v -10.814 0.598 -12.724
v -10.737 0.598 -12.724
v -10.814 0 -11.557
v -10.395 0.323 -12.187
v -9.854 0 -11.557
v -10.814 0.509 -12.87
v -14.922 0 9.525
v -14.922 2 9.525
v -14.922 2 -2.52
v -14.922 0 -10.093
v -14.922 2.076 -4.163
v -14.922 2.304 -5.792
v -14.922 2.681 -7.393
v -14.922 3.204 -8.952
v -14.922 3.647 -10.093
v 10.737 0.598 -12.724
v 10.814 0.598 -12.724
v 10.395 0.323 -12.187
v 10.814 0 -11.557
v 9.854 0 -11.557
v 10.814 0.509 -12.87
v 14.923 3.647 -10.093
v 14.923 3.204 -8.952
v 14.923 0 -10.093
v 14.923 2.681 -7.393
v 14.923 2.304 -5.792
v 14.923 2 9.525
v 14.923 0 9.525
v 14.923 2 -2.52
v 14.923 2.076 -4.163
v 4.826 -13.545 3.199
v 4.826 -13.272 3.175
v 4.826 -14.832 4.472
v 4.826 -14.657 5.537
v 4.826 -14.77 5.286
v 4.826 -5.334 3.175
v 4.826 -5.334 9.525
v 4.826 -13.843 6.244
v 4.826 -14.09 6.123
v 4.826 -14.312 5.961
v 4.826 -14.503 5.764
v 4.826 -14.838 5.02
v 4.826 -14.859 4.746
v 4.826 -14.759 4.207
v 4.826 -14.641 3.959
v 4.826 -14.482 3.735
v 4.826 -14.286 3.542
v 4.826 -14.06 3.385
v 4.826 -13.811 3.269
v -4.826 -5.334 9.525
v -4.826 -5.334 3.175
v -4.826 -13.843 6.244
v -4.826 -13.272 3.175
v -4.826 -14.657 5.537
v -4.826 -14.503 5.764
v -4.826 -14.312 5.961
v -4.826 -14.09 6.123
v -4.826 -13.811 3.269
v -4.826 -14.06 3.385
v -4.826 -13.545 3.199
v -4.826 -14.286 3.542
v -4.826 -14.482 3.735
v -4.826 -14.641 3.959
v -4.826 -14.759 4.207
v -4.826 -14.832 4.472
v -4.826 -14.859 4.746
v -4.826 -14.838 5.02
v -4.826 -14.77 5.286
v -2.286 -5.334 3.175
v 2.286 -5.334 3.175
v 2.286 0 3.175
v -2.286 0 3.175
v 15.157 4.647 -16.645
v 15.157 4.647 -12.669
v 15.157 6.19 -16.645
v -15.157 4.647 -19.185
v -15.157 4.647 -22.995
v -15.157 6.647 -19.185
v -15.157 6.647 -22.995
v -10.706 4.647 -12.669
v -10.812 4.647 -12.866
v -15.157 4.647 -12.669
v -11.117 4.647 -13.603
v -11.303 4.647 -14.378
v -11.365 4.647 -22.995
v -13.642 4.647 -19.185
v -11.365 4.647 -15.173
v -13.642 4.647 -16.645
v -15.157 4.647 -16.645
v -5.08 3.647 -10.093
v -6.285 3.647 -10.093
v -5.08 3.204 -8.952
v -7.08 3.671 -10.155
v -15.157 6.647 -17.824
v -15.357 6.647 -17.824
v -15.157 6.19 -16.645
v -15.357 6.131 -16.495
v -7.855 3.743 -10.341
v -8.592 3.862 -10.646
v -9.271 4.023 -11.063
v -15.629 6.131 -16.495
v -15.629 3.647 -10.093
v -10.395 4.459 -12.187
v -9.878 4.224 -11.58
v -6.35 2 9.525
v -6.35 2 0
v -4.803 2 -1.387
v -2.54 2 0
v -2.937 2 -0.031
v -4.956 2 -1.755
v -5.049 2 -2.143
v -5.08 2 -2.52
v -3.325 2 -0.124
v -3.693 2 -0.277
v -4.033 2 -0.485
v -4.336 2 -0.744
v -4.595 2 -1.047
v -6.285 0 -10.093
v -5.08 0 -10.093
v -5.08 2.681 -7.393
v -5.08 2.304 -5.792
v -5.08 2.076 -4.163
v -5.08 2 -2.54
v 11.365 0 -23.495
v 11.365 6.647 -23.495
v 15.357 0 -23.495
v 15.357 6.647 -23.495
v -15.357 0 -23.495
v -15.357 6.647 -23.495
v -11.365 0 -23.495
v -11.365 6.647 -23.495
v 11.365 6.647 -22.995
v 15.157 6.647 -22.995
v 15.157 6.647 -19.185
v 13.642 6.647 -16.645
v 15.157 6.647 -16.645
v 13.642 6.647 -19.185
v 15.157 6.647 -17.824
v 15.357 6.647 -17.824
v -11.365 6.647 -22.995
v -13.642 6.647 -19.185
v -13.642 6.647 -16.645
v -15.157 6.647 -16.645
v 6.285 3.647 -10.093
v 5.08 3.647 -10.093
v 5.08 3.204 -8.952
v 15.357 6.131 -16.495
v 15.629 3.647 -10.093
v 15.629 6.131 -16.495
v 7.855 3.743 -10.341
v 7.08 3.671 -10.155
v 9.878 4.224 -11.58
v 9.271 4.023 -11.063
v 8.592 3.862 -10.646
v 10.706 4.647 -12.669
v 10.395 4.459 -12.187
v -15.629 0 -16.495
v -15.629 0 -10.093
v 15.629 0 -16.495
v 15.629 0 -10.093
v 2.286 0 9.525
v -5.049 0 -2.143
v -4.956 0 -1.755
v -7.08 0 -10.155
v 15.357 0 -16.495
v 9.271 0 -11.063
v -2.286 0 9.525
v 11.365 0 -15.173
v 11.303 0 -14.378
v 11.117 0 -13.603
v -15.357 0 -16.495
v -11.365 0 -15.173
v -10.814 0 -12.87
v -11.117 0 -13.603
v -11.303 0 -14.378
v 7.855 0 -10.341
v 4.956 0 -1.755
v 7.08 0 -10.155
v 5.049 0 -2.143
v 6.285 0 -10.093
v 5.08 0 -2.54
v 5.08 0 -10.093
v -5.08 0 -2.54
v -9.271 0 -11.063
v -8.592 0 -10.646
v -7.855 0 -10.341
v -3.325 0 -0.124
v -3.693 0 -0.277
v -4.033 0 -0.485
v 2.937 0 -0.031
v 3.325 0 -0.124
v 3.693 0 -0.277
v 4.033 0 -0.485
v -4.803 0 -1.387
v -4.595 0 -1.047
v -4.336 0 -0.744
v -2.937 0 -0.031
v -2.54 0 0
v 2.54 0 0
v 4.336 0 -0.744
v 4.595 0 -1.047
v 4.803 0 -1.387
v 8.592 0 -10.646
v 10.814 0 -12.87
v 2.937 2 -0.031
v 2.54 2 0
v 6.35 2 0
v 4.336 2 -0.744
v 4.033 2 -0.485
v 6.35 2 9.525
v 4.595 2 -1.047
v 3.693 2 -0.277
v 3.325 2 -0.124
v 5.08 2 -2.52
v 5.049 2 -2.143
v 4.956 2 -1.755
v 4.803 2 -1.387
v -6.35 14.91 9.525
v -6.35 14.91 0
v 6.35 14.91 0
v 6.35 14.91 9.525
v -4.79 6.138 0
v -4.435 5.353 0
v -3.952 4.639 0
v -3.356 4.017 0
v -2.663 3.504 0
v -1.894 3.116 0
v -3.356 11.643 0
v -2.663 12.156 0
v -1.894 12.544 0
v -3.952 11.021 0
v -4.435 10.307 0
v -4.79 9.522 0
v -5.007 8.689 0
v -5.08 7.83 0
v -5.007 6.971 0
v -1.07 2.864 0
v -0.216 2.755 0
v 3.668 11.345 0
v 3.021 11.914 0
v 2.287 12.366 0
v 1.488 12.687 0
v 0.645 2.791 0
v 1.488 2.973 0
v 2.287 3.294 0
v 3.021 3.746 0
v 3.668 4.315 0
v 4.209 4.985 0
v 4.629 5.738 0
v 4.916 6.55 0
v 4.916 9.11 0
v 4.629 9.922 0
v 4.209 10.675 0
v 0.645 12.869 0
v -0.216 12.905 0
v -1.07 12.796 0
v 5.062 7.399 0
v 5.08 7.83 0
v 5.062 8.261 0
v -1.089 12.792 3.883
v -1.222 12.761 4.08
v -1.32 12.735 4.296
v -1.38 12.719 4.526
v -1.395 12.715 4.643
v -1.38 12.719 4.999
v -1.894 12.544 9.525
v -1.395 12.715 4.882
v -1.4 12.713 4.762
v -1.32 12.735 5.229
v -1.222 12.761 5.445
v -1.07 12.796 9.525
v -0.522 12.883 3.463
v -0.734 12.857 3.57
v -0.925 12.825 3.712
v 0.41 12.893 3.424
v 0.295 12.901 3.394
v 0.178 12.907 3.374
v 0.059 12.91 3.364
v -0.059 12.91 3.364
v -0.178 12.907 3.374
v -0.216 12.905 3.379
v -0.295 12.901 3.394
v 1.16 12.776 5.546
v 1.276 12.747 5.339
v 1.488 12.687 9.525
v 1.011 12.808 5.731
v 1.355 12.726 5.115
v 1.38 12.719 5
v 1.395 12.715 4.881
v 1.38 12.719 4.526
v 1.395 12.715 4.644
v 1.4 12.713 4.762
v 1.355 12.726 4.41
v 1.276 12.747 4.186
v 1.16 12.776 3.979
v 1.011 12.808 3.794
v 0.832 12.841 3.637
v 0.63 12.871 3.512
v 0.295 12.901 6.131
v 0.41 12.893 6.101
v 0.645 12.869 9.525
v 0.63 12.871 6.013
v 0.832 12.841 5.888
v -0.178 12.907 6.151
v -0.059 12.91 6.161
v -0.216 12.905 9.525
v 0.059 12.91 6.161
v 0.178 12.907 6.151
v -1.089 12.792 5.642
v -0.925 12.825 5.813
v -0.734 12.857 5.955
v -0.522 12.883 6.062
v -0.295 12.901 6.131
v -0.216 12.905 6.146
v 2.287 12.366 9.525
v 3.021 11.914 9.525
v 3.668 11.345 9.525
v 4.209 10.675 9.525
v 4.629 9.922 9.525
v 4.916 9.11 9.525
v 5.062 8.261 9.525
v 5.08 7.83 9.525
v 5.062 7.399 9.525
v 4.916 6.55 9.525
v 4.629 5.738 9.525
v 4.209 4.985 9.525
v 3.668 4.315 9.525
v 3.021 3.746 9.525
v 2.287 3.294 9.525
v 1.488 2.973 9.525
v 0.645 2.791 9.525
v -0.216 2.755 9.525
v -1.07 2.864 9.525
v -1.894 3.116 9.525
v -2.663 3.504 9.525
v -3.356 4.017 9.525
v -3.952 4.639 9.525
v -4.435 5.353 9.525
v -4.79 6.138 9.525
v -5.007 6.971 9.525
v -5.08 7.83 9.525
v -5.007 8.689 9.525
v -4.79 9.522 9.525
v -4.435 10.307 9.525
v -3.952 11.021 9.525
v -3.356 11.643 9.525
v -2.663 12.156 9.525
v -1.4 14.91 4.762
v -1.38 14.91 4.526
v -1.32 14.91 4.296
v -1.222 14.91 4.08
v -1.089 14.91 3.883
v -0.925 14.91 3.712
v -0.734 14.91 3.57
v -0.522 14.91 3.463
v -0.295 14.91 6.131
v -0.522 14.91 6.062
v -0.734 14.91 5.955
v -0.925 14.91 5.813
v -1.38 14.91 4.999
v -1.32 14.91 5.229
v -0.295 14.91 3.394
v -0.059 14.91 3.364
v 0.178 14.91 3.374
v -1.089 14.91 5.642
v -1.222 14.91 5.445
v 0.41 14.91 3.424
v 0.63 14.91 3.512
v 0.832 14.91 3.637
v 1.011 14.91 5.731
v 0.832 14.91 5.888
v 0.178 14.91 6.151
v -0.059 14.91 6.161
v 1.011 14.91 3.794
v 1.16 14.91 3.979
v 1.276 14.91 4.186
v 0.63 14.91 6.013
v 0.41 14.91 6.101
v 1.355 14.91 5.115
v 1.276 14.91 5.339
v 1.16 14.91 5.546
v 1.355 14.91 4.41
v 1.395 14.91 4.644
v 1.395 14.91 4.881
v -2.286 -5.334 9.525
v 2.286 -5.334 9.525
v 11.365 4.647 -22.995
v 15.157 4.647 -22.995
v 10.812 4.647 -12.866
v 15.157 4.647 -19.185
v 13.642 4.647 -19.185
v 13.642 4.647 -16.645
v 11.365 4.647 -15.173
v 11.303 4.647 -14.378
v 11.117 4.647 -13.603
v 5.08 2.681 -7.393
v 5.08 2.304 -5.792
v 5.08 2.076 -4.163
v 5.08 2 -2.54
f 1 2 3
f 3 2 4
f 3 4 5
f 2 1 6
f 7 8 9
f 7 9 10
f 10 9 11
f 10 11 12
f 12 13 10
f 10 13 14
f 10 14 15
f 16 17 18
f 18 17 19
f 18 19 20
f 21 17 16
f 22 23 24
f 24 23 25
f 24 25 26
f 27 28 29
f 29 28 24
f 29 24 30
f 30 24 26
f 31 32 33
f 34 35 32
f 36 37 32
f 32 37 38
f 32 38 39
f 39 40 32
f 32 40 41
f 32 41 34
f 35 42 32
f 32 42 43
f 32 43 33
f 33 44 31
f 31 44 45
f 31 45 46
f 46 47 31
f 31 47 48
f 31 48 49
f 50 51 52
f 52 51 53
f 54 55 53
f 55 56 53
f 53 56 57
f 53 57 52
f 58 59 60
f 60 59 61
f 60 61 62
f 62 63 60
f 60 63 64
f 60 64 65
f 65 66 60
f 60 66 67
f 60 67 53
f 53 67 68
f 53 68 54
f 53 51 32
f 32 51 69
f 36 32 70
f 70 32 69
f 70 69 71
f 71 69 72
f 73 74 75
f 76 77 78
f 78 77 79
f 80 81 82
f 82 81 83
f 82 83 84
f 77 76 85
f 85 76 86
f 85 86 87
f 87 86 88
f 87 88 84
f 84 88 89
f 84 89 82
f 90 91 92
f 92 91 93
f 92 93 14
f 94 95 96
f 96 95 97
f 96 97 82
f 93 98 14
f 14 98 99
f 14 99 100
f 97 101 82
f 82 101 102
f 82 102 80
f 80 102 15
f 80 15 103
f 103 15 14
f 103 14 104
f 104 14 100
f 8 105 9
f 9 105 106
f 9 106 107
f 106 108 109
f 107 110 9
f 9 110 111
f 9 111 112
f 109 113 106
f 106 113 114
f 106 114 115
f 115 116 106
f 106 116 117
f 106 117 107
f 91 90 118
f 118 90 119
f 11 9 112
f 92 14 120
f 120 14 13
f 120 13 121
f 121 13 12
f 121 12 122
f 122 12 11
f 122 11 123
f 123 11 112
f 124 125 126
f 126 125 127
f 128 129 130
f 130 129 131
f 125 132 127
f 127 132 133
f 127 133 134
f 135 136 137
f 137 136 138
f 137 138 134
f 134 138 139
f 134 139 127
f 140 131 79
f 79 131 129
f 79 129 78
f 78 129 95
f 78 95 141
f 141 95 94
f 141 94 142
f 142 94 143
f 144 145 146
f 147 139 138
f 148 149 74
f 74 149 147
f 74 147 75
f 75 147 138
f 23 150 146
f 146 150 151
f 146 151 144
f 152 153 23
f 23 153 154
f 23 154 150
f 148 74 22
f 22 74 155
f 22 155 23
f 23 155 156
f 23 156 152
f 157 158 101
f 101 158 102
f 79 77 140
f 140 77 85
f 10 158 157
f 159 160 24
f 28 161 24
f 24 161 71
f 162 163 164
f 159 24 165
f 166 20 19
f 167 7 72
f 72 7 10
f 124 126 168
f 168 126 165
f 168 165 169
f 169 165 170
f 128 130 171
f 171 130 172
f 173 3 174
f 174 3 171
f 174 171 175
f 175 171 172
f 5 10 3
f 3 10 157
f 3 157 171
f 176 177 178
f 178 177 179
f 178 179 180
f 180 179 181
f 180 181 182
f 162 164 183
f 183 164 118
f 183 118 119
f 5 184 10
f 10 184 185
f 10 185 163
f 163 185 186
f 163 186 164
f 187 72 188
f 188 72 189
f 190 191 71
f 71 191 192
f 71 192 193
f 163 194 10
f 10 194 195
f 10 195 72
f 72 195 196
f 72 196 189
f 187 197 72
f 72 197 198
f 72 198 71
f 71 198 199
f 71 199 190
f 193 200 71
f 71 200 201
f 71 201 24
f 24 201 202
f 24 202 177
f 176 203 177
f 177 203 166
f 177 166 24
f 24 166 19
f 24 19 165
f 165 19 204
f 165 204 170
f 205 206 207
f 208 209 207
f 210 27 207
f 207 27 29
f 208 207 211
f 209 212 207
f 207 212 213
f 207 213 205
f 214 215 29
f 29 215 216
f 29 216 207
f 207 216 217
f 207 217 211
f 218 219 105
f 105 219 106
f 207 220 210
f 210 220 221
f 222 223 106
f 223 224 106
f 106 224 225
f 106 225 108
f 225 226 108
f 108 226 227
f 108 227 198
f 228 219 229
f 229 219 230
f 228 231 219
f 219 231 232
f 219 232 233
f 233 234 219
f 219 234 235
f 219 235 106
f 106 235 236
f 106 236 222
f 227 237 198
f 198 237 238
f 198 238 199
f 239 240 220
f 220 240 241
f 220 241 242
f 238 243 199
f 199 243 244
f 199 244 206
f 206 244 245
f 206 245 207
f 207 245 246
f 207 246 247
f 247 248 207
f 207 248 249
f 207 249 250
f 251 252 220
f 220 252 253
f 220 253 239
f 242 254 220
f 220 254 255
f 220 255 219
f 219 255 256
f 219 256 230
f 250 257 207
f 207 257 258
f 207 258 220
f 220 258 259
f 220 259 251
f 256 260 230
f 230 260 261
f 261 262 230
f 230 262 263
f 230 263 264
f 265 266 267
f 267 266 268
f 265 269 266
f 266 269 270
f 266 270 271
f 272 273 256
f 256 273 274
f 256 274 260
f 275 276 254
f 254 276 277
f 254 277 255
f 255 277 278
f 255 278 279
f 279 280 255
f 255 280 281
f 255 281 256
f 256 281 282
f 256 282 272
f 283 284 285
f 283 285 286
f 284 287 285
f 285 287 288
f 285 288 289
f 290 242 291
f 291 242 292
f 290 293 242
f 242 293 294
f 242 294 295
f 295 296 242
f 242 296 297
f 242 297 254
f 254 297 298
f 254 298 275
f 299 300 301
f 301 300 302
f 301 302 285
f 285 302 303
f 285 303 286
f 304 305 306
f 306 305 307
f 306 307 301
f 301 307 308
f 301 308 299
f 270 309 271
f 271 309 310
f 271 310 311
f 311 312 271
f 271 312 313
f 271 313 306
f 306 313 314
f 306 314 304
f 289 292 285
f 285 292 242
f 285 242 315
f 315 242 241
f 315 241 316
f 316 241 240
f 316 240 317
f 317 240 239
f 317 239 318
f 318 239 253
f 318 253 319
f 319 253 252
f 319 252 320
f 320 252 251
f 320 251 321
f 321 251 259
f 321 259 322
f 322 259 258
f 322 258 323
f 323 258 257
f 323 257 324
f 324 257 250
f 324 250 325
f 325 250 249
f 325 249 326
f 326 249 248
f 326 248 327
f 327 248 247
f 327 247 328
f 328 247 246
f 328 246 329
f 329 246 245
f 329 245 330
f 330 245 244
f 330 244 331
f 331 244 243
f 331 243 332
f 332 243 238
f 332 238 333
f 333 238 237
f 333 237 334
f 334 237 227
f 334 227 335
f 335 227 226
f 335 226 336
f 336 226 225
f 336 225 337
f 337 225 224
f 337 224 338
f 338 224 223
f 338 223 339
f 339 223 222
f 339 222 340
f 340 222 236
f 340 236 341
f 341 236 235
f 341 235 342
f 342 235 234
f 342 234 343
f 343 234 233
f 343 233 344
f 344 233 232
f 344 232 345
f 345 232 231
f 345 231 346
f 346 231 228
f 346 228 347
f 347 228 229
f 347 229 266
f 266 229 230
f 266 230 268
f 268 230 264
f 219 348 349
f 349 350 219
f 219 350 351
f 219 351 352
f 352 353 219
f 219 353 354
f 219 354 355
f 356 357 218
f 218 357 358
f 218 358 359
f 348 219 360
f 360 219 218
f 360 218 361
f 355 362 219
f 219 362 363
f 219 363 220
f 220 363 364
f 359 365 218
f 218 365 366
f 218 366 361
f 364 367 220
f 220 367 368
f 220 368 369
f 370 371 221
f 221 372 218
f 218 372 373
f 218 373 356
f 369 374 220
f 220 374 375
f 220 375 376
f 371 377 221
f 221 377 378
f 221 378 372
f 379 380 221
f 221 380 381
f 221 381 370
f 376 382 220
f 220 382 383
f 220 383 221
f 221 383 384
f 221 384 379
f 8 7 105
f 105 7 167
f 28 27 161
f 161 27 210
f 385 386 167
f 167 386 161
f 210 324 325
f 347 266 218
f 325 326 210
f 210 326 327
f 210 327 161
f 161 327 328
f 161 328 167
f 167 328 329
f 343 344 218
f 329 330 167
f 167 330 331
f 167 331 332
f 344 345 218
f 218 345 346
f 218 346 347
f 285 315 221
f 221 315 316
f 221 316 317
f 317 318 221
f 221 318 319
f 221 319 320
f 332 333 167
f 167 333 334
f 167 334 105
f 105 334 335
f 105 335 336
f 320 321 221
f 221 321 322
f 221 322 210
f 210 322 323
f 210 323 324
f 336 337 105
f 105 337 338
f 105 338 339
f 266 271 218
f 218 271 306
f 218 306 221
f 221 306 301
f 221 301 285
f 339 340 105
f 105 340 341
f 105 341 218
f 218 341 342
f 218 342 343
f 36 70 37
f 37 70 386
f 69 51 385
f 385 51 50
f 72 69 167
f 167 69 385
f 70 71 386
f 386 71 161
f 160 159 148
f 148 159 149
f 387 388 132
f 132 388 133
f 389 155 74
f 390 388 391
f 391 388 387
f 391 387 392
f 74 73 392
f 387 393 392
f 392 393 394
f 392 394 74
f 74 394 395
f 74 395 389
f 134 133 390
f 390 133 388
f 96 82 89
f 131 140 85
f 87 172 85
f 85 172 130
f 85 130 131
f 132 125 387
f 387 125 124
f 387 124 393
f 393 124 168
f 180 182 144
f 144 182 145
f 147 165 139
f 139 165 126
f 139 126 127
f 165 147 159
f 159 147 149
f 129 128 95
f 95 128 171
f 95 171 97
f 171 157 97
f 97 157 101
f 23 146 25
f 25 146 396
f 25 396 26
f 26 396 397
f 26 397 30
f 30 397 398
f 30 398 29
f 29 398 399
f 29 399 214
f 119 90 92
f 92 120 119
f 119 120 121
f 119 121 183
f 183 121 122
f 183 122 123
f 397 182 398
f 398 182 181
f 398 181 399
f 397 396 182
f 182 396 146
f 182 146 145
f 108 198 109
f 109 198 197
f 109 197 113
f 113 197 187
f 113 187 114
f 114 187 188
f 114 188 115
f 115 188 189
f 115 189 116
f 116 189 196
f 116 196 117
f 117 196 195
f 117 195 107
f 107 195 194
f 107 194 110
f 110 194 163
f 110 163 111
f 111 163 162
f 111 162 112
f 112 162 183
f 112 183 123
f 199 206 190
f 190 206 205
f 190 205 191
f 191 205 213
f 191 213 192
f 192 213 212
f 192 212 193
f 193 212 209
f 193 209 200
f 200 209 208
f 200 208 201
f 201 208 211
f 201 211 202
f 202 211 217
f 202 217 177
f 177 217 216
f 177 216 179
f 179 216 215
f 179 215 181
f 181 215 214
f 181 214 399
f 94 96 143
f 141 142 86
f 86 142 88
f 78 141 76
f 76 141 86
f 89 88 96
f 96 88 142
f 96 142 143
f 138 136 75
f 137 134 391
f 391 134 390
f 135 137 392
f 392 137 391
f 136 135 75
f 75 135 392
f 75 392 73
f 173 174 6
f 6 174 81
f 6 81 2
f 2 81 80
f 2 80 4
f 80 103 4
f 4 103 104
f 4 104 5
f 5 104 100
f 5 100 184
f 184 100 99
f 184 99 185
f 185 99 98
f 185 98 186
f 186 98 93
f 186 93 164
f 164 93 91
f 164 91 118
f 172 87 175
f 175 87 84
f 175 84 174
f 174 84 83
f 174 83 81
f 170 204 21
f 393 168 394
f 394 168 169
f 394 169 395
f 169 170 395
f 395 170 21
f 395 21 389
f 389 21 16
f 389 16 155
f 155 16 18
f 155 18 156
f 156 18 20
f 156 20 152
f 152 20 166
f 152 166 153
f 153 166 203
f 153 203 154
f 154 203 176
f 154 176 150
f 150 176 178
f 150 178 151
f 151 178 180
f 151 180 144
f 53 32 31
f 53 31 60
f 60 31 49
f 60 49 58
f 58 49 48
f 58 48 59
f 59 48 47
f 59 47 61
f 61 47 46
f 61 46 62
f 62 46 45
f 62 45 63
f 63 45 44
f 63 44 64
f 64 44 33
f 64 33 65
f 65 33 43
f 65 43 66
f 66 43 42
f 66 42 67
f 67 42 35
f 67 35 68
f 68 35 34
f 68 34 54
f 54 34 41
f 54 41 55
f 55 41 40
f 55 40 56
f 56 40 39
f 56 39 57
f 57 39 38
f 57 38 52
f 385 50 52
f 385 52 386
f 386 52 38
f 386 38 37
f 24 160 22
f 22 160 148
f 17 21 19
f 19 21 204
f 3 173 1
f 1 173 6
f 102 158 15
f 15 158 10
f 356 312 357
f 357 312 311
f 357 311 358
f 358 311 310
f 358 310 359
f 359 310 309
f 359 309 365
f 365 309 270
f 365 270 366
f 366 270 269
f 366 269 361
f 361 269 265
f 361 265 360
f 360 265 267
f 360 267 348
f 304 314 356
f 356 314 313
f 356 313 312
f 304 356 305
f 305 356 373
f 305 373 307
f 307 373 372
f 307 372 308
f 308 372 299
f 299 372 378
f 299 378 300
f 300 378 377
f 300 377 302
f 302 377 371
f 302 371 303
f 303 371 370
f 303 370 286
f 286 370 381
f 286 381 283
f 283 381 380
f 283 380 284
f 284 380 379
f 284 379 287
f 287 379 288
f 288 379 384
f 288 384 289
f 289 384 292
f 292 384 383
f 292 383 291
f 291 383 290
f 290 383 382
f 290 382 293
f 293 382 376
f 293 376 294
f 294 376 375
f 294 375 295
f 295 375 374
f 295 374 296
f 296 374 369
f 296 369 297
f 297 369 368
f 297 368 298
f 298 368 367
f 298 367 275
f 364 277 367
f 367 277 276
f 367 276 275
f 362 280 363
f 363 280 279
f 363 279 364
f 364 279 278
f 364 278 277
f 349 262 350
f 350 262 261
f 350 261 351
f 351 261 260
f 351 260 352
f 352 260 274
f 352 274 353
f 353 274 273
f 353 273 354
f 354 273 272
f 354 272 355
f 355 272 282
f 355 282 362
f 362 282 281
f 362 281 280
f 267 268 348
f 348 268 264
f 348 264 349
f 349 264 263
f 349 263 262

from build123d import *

# Parameters (mm, degrees)
SKETCH2_W                = 12.7
SKETCH2_H                = 14.91
SKETCH2_R                = 5.08
BOSS_EXTRUDE1_DEPTH      = 9.525
BOSS_EXTRUDE2_START      = 9.525
BOSS_EXTRUDE2_DEPTH      = 6.35
BOSS_EXTRUDE3_DEPTH      = 2
BOSS_EXTRUDE7_START      = -25.4
BOSS_EXTRUDE7_DEPTH      = 50.8
SKETCH5_W                = 9.77111141
SKETCH5_H                = 3
CUT_EXTRUDE1_DEPTH       = 68.279429146
CUT_EXTRUDE2_START       = -12.902497
SKETCH6_W                = 30.31497918
SKETCH6_H                = 2.000002
SKETCH6_W_2              = 22.73097918
SKETCH6_H_2              = 6.646875
CUT_EXTRUDE2_DEPTH       = 12.902497
CUT_EXTRUDE3_START       = 0.499999
SKETCH6_3_W              = 22.73097918
SKETCH6_3_H              = 2.000002
SKETCH6_3_H_2            = 4.646873
SKETCH6_3_W_2            = 0.271399
SKETCH6_3_H_3            = 3
CUT_EXTRUDE3_DEPTH       = 7.0000114
FILLET2_R                = 17.78
CUT_EXTRUDE4_DEPTH       = 33.871006443
CUT_EXTRUDE4_DEPTH_BACK  = 33.871006443
SKETCH7_W                = 10.16
SKETCH7_H                = 10.092503778
FILLET3_R                = 2.54
SKETCH8_W                = 1.515
SKETCH8_H                = 2.54
BOSS_EXTRUDE8_DEPTH      = 2
FILLET4_R                = 5.08
CUT_EXTRUDE5_DEPTH       = 35.535859512
BOSS_EXTRUDE9_DEPTH      = 3.646875
SET_SCREW_CUT_REACH      = 43.018
SET_SCREW_CUT_END_RADIUS = 5.08
SKETCH12_R               = 1.4


# Read off the part's stored shape, not the designer's step: Boss-Extrude7
with BuildPart() as part:
    # Sketch2 → Boss-Extrude1 (new body)
    with BuildSketch(Plane.XY):
        with Locations((0, 7.455)):
            Rectangle(SKETCH2_W, SKETCH2_H)
        with Locations(Location((0, 7.83, 0), (0, 0, 180))):
            Circle(SKETCH2_R, mode=Mode.SUBTRACT)
    extrude(amount=BOSS_EXTRUDE1_DEPTH)

    # Sketch2<3> → Boss-Extrude2 (add)
    with BuildSketch(Plane.XY.offset(BOSS_EXTRUDE2_START)):
        Polygon((2.286, 0), (-2.286, 0), (-2.286, -5.334), (-4.826, -5.334), (-4.826, -14.859), (4.826, -14.859), (4.826, -5.334), (2.286, -5.334), align=None)
    extrude(amount=-BOSS_EXTRUDE2_DEPTH)

    # Sketch3 → Boss-Extrude3 (add)
    with BuildSketch(Plane.XZ):
        Polygon((14.9225, 9.525), (-14.9225, 9.525), (-14.9225, -11.557), (-10.85748959, -11.557), (10.85748959, -11.557), (14.9225, -11.557), align=None)
    extrude(amount=-BOSS_EXTRUDE3_DEPTH)

    # Boss-Extrude7 outline → Boss-Extrude7 (add)
    with BuildSketch(Plane(origin=(0, 0, 0), x_dir=(0, 0, -1), z_dir=(1, 0, 0)).offset(BOSS_EXTRUDE7_START)):
        with BuildLine():
            Line((5.848505491, 2), (11.557, 0))
            Line((11.557, 0), (12.724273166, 0.598024588))
            ThreePointArc((12.724273166, 0.598024588), (12.796184179, 0.55223881), (12.869936616, 0.509482413))
            Line((12.869936616, 0.509482413), (20.955, 3.646875))
            Line((20.955, 3.646875), (23.495, 3.646875))
            Line((23.495, 3.646875), (23.495, 6.646875))
            Line((23.495, 6.646875), (17.823506348, 6.646875))
            Line((17.823506348, 6.646875), (5.848505491, 2))
        make_face()
    extrude(amount=BOSS_EXTRUDE7_DEPTH)

    # Sketch5 → Cut-Extrude1 (cut, through all)
    with BuildSketch(Plane(origin=(0, 37.971305566, -23.495), x_dir=(1, 0, 0), z_dir=(0, 0, 1))):
        Polygon((25.4, -37.971305566), (25.4, -34.324430566), (15.62888859, -34.324430566), (14.9225, -34.324430566), (14.9225, -37.971305566), align=None)
        with Locations((20.514444295, -32.824430566)):
            Rectangle(SKETCH5_W, SKETCH5_H)
        Polygon((-25.4, -34.324430566), (-25.4, -37.971305566), (-14.9225, -37.971305566), (-14.9225, -34.324430566), (-15.62888859, -34.324430566), align=None)
        with Locations((-20.514444295, -32.824430566)):
            Rectangle(SKETCH5_W, SKETCH5_H)
    extrude(amount=CUT_EXTRUDE1_DEPTH, mode=Mode.SUBTRACT)

    # Sketch6 → Cut-Extrude2 (cut)
    with BuildSketch(Plane(origin=(0, 0, -22.995001), x_dir=(-1, 0, 0), z_dir=(0, 0, -1)).offset(CUT_EXTRUDE2_START)):
        with Locations((0, 5.646874)):
            Rectangle(SKETCH6_W, SKETCH6_H)
        with Locations((0, 3.3234375)):
            Rectangle(SKETCH6_W_2, SKETCH6_H_2)
    extrude(amount=CUT_EXTRUDE2_DEPTH, mode=Mode.SUBTRACT)

    # Sketch6<3> → Cut-Extrude3 (cut)
    with BuildSketch(Plane(origin=(0, 0, -22.995001), x_dir=(-1, 0, 0), z_dir=(0, 0, -1)).offset(CUT_EXTRUDE3_START)):
        with Locations((0, 5.646874)):
            Rectangle(SKETCH6_3_W, SKETCH6_3_H)
        with Locations((0, 2.3234365)):
            Rectangle(SKETCH6_3_W, SKETCH6_3_H_2)
        with Locations((-15.49318909, 5.146875)):
            Rectangle(SKETCH6_3_W_2, SKETCH6_3_H_3)
        with Locations((15.49318909, 5.146875)):
            Rectangle(SKETCH6_3_W_2, SKETCH6_3_H_3)
    extrude(amount=-CUT_EXTRUDE3_DEPTH, mode=Mode.SUBTRACT)

    # Fillet2
    fillet2_edges = [part.edges().sort_by_distance(p)[0] for p in [
        (0, 2, -5.848505491),
    ]]
    fillet(fillet2_edges, radius=FILLET2_R)

    # Sketch7 → Cut-Extrude4 (cut, two sides: drawn at the far end of the back side and taken through both)
    with BuildSketch(Plane(origin=(0, 2, 0), x_dir=(1, 0, 0), z_dir=(0, 1, 0)).offset(-CUT_EXTRUDE4_DEPTH_BACK)):
        with Locations((0, 5.046251889)):
            Rectangle(SKETCH7_W, SKETCH7_H)
    extrude(amount=CUT_EXTRUDE4_DEPTH + CUT_EXTRUDE4_DEPTH_BACK, mode=Mode.SUBTRACT)

    # Fillet3
    # the kernel refuses this fillet: 2.54 mm, written as the material it adds along each edge
    with BuildSketch(Plane(origin=(-5.08, 2, 0), x_dir=(1, 0, 0), z_dir=(0, -1, 0))) as fillet3_piece_1:
        with BuildLine():
            CenterArc((FILLET3_R, -FILLET3_R), FILLET3_R, 90, 90)
            Line((0, -FILLET3_R), (-FILLET3_R * 0.02, -FILLET3_R))
            Line((-FILLET3_R * 0.02, -FILLET3_R), (-FILLET3_R * 0.02, FILLET3_R * 0.02))
            Line((-FILLET3_R * 0.02, FILLET3_R * 0.02), (FILLET3_R, FILLET3_R * 0.02))
            Line((FILLET3_R, FILLET3_R * 0.02), (FILLET3_R, 0))
        make_face()
    extrude(amount=2)
    with BuildSketch(Plane(origin=(5.08, 0, 0), x_dir=(0, 0, -1), z_dir=(0, 1, 0))) as fillet3_piece_2:
        with BuildLine():
            CenterArc((FILLET3_R, FILLET3_R), FILLET3_R, 180, 90)
            Line((0, FILLET3_R), (-FILLET3_R * 0.02, FILLET3_R))
            Line((-FILLET3_R * 0.02, FILLET3_R), (-FILLET3_R * 0.02, -FILLET3_R * 0.02))
            Line((-FILLET3_R * 0.02, -FILLET3_R * 0.02), (FILLET3_R, -FILLET3_R * 0.02))
            Line((FILLET3_R, -FILLET3_R * 0.02), (FILLET3_R, 0))
        make_face()
    extrude(amount=2)

    # Sketch8 → Boss-Extrude8 (add)
    with BuildSketch(Plane(origin=(0, 4.646873, 0), x_dir=(1, 0, 0), z_dir=(0, 1, 0))):
        with Locations((-14.39998959, 17.915001)):
            Rectangle(SKETCH8_W, SKETCH8_H)
        with Locations((14.39998959, 17.915001)):
            Rectangle(SKETCH8_W, SKETCH8_H)
    extrude(amount=BOSS_EXTRUDE8_DEPTH)

    # Fillet4
    fillet4_edges = [part.edges().sort_by_distance(p)[0] for p in [
        (11.36548959, 1.823437543, -10.092504),
        (-11.36548959, 1.823437543, -10.092504),
    ]]
    fillet(fillet4_edges, radius=FILLET4_R)

    # Sketch10 → Cut-Extrude5 (cut, through all)
    with BuildSketch(Plane(origin=(4.826, 0, 0), x_dir=(0, 0, -1), z_dir=(1, 0, 0))):
        with BuildLine():
            Line((-6.243675471, -13.842705282), (-9.525, -5.334))
            Line((-9.525, -5.334), (-9.525, -14.859))
            Line((-9.525, -14.859), (-4.7625, -14.859))
            ThreePointArc((-4.7625, -14.859), (-5.660655851, -14.580496684), (-6.243675471, -13.842705282))
        make_face()
        with BuildLine():
            ThreePointArc((-3.175, -13.2715), (-3.639967985, -14.394032015), (-4.7625, -14.859))
            Line((-4.7625, -14.859), (-3.175, -14.859))
            Line((-3.175, -14.859), (-3.175, -13.2715))
        make_face()
    extrude(amount=-CUT_EXTRUDE5_DEPTH, mode=Mode.SUBTRACT)

    # Sketch11 → Boss-Extrude9 (add)
    with BuildSketch(Plane.XZ.offset(-3.646875)):
        with BuildLine():
            Line((11.36548959, -20.955), (11.36548959, -15.172503778))
            ThreePointArc((11.36548959, -15.172503778), (11.225613574, -13.98862244), (10.8136884, -12.869936616))
            Line((10.8136884, -12.869936616), (10.8136884, -10.092503778))
            Line((10.8136884, -10.092503778), (14.9225, -10.092503778))
            Line((14.9225, -10.092503778), (15.62888859, -10.092503778))
            Line((15.62888859, -10.092503778), (15.62888859, -16.4949886))
            Line((15.62888859, -16.4949886), (15.35748959, -16.4949886))
            Line((15.35748959, -16.4949886), (15.35748959, -23.495))
            Line((15.35748959, -23.495), (11.36548959, -23.495))
            Line((11.36548959, -23.495), (11.36548959, -20.955))
        make_face()
        with BuildLine():
            Line((-14.9225, -10.092503778), (-10.8136884, -10.092503778))
            Line((-10.8136884, -10.092503778), (-10.8136884, -12.869936616))
            ThreePointArc((-10.8136884, -12.869936616), (-11.225613574, -13.98862244), (-11.36548959, -15.172503778))
            Line((-11.36548959, -15.172503778), (-11.36548959, -20.955))
            Line((-11.36548959, -20.955), (-11.36548959, -23.495))
            Line((-11.36548959, -23.495), (-15.35748959, -23.495))
            Line((-15.35748959, -23.495), (-15.35748959, -16.4949886))
            Line((-15.35748959, -16.4949886), (-15.62888859, -16.4949886))
            Line((-15.62888859, -16.4949886), (-15.62888859, -10.092503778))
            Line((-15.62888859, -10.092503778), (-14.9225, -10.092503778))
        make_face()
    extrude(amount=BOSS_EXTRUDE9_DEPTH)

    # Set Screw Cut: up to this cylinder (the profile starts outside it)
    set_screw_cut_end = Plane(origin=(0, 7.83, 4.7625), z_dir=(0, 0, -1)) * Cylinder(SET_SCREW_CUT_END_RADIUS, 97.196, mode=Mode.PRIVATE)
    # Sketch12 → Set Screw Cut (cut, up to the surface)
    with BuildSketch(Plane(origin=(0, 14.91, 0), x_dir=(1, 0, 0), z_dir=(0, 1, 0)), mode=Mode.PRIVATE) as set_screw_cut_sk1:
        with Locations(Location((0, -4.7625, 0), (0, 0, 180))):
            Circle(SKETCH12_R)
    set_screw_cut_tool1 = extrude(set_screw_cut_sk1.sketch, amount=-SET_SCREW_CUT_REACH, mode=Mode.PRIVATE) - set_screw_cut_end
    add(set_screw_cut_tool1.solids().sort_by_distance((0, 14.91, 4.7625))[0], mode=Mode.SUBTRACT)


solid = part.part
